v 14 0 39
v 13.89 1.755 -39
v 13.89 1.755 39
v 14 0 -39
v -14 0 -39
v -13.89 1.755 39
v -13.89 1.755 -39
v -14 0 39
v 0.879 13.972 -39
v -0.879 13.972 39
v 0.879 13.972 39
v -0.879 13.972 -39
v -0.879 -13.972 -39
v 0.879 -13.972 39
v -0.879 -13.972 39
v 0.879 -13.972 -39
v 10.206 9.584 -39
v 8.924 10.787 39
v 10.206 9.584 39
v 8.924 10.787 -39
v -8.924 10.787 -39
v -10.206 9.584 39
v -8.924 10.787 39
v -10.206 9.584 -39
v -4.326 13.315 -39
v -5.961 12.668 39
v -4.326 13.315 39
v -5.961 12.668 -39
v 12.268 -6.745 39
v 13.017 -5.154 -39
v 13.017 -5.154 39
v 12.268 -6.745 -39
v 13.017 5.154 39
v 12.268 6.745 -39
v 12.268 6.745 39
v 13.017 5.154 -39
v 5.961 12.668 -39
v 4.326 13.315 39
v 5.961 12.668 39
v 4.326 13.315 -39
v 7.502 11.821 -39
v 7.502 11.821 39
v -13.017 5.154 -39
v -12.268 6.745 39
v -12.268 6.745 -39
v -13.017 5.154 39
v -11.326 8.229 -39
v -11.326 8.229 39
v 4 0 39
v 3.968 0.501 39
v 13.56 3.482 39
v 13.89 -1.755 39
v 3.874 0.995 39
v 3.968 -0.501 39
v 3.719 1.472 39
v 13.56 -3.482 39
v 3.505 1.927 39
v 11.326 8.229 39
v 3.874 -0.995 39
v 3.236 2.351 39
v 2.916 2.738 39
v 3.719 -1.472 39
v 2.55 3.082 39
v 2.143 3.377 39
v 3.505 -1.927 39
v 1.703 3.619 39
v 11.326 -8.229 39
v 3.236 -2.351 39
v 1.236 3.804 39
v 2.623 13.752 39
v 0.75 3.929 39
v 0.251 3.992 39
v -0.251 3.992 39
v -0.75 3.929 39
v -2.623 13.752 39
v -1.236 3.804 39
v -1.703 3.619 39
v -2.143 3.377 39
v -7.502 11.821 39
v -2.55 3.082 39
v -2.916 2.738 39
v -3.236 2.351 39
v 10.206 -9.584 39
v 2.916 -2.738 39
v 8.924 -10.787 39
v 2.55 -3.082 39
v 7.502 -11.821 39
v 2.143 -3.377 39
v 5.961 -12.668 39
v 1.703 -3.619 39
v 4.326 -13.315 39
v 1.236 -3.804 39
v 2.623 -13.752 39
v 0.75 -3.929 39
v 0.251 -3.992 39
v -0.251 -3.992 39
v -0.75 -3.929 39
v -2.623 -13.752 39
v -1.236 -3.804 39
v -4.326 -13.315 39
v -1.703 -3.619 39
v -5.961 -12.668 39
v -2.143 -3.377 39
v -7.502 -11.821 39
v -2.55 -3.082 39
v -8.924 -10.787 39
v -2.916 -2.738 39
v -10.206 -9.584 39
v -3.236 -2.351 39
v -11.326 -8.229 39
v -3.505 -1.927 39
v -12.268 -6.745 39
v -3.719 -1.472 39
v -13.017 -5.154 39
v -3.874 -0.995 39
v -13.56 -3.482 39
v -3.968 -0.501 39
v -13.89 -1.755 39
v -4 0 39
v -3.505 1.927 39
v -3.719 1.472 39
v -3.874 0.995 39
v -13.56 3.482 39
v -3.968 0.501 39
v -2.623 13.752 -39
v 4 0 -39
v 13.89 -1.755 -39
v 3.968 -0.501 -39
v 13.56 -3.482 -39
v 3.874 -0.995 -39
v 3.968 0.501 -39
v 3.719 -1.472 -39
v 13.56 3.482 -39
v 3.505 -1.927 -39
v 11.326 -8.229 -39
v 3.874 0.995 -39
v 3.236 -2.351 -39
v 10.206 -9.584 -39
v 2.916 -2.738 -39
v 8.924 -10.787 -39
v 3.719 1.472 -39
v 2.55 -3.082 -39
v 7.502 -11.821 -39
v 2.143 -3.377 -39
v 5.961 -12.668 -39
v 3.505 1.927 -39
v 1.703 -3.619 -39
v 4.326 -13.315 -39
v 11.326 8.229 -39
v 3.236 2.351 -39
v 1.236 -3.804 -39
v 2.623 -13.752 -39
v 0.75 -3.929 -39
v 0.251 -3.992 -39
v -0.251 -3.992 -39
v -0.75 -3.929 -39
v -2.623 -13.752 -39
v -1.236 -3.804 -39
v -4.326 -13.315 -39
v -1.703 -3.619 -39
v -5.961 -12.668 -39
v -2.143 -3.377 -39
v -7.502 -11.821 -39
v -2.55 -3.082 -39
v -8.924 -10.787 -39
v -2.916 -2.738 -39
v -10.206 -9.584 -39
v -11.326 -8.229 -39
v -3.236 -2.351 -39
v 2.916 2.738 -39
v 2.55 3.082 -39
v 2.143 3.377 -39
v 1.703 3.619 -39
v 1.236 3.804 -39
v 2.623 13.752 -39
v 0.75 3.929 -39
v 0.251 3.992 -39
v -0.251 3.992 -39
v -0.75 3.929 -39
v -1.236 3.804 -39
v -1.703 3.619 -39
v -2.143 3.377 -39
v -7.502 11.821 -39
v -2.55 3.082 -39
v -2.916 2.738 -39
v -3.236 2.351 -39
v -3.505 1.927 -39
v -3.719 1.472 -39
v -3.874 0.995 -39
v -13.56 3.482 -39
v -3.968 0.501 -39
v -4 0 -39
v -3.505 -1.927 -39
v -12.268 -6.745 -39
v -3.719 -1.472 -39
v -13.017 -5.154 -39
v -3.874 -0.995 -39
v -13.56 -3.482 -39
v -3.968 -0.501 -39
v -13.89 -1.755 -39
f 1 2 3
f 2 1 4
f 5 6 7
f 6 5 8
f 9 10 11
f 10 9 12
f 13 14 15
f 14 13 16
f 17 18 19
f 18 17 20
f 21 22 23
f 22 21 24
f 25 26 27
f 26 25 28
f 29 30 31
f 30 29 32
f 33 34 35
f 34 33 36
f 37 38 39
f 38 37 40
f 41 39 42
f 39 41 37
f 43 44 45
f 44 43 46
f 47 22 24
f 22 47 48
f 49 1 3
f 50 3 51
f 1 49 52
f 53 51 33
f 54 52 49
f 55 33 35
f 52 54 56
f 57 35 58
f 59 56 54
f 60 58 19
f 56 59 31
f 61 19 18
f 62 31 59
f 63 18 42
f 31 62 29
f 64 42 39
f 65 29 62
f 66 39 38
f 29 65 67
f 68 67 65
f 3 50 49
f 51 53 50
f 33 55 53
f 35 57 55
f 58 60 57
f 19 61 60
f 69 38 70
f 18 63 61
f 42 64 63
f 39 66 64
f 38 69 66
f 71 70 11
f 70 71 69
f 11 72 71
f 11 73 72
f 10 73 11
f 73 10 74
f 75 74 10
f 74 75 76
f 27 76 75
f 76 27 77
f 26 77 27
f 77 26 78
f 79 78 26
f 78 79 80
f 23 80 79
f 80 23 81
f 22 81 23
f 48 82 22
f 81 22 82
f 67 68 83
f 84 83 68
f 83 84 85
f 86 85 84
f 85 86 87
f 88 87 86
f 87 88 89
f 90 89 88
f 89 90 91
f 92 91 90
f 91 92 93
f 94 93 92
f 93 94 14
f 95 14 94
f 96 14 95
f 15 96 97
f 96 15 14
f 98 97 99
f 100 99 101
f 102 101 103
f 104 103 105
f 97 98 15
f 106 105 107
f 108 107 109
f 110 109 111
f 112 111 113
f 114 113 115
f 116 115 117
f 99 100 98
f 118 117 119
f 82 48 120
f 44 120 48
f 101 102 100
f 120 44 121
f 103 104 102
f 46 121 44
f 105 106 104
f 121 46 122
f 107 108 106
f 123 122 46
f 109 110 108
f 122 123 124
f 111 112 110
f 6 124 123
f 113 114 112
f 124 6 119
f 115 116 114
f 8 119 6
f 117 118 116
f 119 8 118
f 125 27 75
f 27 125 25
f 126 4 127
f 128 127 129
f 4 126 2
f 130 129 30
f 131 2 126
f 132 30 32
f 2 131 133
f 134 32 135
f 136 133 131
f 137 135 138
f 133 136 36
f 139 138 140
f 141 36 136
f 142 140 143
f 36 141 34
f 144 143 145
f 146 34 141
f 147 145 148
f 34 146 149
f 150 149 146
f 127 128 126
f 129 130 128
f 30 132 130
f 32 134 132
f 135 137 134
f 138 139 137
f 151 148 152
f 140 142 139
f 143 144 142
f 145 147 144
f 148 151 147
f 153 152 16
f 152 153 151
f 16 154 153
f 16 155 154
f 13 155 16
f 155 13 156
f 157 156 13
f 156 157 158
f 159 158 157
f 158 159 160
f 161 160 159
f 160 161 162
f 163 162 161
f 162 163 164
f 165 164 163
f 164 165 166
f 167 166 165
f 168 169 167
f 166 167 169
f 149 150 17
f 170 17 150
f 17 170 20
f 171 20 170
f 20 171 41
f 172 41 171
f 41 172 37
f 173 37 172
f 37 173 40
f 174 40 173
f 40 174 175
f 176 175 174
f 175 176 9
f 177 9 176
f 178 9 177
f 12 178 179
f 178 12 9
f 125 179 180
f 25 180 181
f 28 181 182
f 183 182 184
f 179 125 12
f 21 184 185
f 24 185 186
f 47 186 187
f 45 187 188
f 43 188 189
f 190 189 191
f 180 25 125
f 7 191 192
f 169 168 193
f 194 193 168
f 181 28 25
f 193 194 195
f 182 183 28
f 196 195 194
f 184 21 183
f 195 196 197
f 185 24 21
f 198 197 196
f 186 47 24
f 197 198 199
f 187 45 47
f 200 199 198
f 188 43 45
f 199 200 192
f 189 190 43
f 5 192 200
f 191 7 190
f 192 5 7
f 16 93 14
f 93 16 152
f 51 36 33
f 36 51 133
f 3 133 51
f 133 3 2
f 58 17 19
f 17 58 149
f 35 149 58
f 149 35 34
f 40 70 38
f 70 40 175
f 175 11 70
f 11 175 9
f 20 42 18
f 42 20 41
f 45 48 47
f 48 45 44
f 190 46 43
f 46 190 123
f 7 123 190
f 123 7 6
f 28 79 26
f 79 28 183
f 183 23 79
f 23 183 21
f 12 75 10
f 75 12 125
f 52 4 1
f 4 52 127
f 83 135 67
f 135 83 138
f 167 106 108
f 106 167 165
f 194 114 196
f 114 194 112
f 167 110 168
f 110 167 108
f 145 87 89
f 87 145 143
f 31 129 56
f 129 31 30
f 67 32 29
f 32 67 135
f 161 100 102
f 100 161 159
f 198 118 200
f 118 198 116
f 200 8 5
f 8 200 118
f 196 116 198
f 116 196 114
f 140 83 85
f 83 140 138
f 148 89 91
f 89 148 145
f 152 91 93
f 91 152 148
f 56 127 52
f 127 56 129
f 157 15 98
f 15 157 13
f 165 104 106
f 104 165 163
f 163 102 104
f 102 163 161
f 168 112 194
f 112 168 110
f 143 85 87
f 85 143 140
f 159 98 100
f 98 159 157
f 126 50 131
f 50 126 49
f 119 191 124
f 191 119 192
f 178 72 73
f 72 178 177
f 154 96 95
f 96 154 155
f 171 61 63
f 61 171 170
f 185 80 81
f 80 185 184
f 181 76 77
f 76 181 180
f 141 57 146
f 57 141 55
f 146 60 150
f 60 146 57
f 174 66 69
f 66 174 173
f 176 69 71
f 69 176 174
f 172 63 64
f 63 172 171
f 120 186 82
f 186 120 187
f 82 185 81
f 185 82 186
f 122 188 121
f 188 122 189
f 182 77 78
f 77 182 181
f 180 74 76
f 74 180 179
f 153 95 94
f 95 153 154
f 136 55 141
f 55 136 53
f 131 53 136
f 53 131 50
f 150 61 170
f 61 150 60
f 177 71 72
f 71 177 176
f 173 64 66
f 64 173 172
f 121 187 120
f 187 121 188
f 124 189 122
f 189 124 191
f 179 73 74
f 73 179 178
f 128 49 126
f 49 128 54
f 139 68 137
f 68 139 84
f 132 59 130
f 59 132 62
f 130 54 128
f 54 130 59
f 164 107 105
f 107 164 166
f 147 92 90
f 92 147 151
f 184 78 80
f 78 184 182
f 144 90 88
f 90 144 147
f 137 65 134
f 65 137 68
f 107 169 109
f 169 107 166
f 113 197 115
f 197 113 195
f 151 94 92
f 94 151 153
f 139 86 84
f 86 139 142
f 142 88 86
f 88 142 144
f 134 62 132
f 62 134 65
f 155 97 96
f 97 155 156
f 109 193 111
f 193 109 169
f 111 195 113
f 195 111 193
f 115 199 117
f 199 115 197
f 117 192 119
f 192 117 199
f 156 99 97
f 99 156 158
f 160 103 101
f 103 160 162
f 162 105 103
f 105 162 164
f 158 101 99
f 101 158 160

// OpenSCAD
$fn = 50;


difference() {
	union() {
		translate(v = [0, 0, -39.0000000000]) {
			cylinder(h = 78, r = 14.0000000000);
		}
	}
	union() {
		translate(v = [0, 0, -100.0000000000]) {
			cylinder(h = 200, r = 4.0000000000);
		}
	}
}
